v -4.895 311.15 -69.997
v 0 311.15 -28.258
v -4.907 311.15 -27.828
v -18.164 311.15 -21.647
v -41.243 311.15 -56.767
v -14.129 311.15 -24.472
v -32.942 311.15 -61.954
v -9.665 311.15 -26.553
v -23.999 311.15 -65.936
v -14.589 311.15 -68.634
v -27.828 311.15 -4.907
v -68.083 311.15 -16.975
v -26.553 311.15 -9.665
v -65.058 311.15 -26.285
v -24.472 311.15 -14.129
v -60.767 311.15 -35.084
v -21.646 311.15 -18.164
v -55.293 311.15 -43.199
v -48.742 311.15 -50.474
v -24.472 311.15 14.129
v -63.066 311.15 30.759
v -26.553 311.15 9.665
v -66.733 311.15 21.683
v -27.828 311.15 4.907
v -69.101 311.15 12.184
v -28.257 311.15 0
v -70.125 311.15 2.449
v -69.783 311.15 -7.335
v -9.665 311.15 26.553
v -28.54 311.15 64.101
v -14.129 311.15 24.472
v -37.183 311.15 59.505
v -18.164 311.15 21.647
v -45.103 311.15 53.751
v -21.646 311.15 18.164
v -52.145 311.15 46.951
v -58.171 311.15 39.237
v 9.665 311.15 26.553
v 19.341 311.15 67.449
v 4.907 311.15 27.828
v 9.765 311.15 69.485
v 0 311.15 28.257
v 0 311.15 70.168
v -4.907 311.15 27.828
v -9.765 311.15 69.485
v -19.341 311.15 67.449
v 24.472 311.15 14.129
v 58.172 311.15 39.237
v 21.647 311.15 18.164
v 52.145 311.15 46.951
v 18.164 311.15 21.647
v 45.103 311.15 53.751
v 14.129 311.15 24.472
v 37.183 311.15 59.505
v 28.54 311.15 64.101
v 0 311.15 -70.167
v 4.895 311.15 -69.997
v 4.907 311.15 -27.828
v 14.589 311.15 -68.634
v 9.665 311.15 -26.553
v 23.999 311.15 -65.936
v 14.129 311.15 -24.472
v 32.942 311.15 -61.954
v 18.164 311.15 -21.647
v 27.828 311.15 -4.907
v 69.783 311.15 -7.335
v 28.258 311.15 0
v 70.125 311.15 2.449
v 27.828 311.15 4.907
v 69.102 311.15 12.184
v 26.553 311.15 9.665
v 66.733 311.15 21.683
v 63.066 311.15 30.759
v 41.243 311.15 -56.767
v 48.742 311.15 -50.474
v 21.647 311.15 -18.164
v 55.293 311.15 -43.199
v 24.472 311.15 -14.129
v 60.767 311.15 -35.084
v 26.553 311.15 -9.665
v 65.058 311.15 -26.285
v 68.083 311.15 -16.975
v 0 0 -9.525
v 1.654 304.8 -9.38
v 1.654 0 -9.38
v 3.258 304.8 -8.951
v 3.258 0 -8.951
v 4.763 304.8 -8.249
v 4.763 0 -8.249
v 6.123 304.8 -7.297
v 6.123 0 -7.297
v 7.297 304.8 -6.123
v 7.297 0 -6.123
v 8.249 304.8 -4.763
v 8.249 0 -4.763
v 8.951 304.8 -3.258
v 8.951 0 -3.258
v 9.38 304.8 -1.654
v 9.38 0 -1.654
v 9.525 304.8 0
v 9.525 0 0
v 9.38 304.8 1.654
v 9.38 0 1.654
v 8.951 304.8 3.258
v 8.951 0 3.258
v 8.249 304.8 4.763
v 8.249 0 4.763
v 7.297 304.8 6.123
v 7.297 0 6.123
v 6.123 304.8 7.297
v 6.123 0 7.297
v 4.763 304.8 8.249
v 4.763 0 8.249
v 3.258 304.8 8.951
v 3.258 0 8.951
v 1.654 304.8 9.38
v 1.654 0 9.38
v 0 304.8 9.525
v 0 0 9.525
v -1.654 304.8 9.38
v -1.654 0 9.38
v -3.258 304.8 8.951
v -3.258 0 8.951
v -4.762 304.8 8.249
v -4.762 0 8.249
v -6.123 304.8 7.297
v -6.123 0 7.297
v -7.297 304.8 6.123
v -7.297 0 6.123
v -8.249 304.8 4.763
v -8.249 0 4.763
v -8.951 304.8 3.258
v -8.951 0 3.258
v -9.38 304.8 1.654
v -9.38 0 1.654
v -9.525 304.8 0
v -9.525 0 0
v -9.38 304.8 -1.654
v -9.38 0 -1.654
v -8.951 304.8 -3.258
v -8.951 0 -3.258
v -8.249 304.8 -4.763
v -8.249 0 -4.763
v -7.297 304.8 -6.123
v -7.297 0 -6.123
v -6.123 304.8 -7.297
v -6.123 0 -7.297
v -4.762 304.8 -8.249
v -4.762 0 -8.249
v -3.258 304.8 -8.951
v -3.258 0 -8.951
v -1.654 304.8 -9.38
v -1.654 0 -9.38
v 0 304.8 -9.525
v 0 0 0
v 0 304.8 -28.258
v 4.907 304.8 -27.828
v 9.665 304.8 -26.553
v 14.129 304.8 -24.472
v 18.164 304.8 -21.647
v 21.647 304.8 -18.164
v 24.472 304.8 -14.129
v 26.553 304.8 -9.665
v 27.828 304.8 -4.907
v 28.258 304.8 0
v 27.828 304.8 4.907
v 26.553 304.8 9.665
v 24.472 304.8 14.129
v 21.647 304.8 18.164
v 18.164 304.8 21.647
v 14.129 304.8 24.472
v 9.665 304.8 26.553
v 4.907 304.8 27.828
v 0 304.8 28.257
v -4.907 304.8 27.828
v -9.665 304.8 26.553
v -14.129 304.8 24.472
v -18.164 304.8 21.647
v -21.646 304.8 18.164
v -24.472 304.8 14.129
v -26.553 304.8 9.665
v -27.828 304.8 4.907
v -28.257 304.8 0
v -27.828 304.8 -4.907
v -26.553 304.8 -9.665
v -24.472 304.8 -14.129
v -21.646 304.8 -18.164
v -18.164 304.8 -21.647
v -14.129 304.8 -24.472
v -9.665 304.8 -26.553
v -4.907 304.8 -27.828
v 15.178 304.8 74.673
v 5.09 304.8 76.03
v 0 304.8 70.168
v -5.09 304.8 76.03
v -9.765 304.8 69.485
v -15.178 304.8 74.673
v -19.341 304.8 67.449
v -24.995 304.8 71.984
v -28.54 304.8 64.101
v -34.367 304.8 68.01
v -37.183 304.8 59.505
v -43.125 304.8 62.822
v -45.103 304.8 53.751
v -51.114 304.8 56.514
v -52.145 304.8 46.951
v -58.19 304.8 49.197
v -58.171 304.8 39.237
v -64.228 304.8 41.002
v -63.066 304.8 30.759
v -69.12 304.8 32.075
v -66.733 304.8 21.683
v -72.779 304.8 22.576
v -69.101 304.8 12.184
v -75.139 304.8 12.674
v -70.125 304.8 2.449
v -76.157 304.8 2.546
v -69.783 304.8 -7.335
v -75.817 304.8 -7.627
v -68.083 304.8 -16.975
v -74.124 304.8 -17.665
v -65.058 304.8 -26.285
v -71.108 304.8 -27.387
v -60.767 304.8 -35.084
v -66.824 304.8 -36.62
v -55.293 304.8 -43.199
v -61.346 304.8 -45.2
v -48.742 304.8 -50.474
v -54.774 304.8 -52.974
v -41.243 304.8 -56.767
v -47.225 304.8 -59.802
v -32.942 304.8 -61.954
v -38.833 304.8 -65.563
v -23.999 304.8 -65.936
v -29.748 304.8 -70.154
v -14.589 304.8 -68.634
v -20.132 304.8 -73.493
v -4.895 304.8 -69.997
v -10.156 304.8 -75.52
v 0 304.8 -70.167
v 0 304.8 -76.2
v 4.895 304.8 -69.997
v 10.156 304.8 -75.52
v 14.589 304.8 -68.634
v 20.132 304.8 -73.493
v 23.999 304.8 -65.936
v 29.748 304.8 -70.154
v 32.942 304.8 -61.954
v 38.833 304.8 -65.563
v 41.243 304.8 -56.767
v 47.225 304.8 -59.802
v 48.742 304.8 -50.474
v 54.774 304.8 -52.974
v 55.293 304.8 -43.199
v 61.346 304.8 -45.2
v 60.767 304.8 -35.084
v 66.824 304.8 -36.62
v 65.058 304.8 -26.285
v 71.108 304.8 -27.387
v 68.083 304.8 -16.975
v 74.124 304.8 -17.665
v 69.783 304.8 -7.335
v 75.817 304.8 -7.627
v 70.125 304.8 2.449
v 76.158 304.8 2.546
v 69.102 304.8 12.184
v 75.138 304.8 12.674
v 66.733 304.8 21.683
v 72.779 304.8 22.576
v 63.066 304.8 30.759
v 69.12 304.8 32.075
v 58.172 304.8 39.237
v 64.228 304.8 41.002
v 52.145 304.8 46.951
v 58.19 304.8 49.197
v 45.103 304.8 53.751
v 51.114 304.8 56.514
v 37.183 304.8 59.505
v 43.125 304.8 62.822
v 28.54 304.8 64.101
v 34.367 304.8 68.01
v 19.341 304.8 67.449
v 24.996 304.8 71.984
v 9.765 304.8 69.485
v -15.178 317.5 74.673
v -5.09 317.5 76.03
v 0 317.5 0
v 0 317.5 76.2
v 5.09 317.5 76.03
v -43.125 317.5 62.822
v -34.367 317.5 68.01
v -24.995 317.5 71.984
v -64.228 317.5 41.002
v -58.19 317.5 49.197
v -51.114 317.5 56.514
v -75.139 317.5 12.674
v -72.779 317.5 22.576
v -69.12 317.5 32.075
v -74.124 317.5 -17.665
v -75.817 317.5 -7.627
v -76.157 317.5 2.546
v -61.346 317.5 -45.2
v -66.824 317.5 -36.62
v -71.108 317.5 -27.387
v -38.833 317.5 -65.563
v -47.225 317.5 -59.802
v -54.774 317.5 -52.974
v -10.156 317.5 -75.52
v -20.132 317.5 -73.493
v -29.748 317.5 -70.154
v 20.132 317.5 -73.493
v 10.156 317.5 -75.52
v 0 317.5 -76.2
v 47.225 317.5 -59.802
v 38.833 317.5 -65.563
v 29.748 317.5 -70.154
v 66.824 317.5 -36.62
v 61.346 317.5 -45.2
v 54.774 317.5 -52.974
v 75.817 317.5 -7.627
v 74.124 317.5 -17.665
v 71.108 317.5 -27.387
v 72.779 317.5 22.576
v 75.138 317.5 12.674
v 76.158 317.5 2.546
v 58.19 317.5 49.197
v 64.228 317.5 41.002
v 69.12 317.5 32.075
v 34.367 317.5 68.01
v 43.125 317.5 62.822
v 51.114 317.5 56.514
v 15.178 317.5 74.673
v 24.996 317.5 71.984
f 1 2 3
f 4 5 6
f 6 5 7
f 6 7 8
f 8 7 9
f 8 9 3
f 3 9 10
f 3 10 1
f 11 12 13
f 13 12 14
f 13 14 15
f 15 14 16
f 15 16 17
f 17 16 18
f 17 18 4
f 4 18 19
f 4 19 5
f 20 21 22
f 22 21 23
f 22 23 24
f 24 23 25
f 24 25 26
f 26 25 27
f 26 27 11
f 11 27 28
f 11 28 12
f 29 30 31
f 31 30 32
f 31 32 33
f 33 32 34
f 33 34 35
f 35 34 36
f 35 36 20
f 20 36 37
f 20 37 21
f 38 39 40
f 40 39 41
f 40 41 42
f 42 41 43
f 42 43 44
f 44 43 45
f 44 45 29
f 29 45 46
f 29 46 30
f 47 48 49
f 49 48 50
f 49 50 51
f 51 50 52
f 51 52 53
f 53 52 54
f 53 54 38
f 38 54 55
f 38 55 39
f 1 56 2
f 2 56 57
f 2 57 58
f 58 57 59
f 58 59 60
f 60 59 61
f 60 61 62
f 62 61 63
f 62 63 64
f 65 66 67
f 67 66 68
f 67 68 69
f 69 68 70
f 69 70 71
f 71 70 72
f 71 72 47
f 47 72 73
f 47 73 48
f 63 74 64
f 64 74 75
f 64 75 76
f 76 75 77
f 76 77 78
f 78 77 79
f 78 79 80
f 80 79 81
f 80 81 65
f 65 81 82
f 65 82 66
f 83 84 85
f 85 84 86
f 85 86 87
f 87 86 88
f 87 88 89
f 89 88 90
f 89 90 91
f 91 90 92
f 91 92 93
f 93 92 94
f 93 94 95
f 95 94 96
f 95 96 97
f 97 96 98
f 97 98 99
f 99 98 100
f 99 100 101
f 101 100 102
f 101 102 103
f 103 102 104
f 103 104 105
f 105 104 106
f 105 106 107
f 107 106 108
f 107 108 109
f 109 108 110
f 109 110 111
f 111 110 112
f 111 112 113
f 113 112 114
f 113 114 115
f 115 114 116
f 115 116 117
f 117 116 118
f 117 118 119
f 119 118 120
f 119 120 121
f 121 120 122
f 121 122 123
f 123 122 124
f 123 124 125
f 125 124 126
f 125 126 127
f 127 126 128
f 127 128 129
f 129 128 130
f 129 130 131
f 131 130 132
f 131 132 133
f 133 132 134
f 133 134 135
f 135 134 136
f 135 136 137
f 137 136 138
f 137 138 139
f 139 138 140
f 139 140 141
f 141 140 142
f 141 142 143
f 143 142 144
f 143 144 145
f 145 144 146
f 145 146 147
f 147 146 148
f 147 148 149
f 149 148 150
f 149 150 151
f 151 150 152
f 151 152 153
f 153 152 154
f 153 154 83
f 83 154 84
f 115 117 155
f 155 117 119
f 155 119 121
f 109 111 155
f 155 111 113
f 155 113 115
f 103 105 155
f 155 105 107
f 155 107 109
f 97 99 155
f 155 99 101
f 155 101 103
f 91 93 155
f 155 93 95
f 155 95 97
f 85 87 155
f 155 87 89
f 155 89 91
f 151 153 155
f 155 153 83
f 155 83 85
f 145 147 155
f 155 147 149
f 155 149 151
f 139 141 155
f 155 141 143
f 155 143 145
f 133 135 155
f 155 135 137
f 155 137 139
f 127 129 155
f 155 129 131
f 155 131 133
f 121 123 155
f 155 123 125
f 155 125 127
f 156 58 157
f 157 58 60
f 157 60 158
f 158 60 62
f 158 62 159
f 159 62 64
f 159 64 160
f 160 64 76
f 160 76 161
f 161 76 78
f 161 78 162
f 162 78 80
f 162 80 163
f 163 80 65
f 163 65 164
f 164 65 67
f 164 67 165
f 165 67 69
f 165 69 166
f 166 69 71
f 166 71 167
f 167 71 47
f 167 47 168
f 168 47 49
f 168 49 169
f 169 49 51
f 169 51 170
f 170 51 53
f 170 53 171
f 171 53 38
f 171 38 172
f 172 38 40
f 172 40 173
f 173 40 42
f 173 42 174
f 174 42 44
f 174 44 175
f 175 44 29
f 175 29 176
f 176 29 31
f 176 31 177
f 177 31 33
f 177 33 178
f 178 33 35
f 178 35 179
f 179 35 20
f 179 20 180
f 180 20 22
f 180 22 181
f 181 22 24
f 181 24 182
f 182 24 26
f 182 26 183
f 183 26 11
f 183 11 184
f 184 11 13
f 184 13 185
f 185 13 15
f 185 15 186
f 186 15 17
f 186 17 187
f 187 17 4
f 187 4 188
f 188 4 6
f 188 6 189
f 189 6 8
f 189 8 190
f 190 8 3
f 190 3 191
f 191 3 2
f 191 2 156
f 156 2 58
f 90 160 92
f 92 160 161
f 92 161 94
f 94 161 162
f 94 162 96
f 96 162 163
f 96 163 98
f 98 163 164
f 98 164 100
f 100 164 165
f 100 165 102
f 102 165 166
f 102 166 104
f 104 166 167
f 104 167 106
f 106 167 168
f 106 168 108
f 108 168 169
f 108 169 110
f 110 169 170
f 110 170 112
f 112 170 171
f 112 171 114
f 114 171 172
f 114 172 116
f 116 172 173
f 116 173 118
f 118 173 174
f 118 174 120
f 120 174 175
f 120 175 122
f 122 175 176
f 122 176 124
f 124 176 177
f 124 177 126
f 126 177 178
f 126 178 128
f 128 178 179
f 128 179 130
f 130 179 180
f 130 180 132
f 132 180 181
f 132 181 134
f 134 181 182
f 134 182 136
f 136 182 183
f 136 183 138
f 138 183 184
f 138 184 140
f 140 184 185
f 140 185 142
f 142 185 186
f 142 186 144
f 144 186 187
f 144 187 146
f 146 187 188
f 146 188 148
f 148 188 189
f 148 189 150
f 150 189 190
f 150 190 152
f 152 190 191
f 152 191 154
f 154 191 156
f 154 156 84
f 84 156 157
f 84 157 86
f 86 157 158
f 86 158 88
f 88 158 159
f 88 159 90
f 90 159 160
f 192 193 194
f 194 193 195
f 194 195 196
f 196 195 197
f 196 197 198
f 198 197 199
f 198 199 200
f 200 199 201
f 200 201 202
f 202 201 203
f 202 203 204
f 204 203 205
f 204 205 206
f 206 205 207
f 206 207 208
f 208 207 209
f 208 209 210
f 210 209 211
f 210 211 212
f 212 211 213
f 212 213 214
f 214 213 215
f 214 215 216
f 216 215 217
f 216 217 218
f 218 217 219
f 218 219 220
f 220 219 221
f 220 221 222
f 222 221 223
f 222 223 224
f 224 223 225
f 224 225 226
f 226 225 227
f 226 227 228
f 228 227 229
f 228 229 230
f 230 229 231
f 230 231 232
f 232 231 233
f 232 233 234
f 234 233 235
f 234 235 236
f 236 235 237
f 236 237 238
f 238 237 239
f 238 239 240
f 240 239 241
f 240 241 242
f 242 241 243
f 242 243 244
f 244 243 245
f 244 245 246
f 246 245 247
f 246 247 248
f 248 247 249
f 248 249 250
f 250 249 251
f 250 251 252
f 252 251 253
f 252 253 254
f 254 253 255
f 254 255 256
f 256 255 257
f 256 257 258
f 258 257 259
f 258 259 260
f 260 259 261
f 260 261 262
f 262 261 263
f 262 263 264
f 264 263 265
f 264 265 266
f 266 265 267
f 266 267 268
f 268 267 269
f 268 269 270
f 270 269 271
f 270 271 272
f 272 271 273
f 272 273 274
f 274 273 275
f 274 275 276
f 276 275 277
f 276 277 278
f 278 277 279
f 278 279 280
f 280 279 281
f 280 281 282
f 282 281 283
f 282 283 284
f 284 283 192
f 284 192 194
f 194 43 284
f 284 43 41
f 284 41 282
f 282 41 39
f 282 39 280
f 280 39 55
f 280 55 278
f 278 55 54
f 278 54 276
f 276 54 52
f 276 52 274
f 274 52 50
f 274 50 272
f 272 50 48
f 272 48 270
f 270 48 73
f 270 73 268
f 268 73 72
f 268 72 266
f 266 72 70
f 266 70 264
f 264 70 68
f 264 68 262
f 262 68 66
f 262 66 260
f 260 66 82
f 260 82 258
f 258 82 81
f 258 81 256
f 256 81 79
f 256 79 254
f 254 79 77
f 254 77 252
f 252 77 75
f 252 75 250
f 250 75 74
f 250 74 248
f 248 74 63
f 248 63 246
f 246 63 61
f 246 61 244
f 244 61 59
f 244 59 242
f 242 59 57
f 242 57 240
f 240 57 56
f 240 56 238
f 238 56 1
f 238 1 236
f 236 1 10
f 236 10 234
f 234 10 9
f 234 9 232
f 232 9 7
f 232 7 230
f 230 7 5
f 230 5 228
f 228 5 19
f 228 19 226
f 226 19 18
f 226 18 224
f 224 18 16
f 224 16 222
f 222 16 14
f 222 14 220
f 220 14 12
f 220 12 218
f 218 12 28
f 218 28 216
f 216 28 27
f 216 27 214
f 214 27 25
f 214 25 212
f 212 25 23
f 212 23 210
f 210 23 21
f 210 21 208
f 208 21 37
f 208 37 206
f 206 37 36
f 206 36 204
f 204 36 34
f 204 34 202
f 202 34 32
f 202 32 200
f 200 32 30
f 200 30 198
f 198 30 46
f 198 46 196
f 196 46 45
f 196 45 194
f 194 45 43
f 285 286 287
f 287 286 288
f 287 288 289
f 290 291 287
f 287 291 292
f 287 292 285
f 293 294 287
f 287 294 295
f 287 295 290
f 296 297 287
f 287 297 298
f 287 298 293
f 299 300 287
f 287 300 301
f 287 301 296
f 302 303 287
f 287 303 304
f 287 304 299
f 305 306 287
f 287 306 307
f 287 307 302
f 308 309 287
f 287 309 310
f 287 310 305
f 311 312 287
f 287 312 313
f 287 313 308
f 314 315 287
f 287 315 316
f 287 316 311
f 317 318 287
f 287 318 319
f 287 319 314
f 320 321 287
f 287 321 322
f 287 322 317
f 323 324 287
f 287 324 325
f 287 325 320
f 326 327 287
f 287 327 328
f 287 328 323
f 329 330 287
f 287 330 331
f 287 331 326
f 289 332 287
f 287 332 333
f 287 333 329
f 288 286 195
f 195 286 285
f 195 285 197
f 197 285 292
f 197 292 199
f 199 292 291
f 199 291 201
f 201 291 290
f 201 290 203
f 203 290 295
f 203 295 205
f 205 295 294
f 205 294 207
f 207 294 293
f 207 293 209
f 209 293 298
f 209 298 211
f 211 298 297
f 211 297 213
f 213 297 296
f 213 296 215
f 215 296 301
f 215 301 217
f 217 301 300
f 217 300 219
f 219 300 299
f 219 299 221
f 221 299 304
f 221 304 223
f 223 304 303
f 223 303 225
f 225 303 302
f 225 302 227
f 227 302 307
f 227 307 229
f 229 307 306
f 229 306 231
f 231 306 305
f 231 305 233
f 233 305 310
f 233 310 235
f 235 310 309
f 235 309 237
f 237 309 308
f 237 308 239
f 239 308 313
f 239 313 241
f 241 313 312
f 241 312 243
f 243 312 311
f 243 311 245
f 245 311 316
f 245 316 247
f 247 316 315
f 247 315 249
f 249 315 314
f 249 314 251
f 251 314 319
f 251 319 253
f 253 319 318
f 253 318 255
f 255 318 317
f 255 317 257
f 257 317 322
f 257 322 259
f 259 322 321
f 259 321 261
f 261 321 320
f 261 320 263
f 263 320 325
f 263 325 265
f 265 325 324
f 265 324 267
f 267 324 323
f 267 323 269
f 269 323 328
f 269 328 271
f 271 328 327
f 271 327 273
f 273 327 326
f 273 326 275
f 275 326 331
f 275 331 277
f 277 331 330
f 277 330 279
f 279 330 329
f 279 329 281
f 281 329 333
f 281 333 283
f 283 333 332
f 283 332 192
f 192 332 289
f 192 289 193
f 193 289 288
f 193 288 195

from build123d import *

# Parameters (mm, degrees)
SKETCH1_R           = 9.525
BOSS_EXTRUDE1_DEPTH = 304.8
SKETCH2_R           = 28.2575
BOSS_EXTRUDE2_DEPTH = 6.35
SKETCH3_R           = 76.2
BOSS_EXTRUDE3_DEPTH = 6.35
SKETCH5_R           = 76.2
SKETCH5_R_2         = 70.1675
BOSS_EXTRUDE4_DEPTH = 6.35


with BuildPart() as part:
    # Sketch1 → Boss-Extrude1 (new body)
    with BuildSketch(Plane(origin=(0, 0, 0), x_dir=(1, 0, 0), z_dir=(0, 1, 0))):
        Circle(SKETCH1_R)
    extrude(amount=BOSS_EXTRUDE1_DEPTH)

    # Sketch2 → Boss-Extrude2 (add)
    with BuildSketch(Plane(origin=(0, 304.8, 0), x_dir=(1, 0, 0), z_dir=(0, 1, 0))):
        Circle(SKETCH2_R)
    extrude(amount=BOSS_EXTRUDE2_DEPTH)

    # Sketch3 → Boss-Extrude3 (add)
    with BuildSketch(Plane(origin=(0, 311.15, 0), x_dir=(1, 0, 0), z_dir=(0, 1, 0))):
        Circle(SKETCH3_R)
    extrude(amount=BOSS_EXTRUDE3_DEPTH)

    # Sketch5 → Boss-Extrude4 (add)
    with BuildSketch(Plane.XZ.offset(-311.15)):
        Circle(SKETCH5_R)
        Circle(SKETCH5_R_2, mode=Mode.SUBTRACT)
    extrude(amount=BOSS_EXTRUDE4_DEPTH)


solid = part.part
